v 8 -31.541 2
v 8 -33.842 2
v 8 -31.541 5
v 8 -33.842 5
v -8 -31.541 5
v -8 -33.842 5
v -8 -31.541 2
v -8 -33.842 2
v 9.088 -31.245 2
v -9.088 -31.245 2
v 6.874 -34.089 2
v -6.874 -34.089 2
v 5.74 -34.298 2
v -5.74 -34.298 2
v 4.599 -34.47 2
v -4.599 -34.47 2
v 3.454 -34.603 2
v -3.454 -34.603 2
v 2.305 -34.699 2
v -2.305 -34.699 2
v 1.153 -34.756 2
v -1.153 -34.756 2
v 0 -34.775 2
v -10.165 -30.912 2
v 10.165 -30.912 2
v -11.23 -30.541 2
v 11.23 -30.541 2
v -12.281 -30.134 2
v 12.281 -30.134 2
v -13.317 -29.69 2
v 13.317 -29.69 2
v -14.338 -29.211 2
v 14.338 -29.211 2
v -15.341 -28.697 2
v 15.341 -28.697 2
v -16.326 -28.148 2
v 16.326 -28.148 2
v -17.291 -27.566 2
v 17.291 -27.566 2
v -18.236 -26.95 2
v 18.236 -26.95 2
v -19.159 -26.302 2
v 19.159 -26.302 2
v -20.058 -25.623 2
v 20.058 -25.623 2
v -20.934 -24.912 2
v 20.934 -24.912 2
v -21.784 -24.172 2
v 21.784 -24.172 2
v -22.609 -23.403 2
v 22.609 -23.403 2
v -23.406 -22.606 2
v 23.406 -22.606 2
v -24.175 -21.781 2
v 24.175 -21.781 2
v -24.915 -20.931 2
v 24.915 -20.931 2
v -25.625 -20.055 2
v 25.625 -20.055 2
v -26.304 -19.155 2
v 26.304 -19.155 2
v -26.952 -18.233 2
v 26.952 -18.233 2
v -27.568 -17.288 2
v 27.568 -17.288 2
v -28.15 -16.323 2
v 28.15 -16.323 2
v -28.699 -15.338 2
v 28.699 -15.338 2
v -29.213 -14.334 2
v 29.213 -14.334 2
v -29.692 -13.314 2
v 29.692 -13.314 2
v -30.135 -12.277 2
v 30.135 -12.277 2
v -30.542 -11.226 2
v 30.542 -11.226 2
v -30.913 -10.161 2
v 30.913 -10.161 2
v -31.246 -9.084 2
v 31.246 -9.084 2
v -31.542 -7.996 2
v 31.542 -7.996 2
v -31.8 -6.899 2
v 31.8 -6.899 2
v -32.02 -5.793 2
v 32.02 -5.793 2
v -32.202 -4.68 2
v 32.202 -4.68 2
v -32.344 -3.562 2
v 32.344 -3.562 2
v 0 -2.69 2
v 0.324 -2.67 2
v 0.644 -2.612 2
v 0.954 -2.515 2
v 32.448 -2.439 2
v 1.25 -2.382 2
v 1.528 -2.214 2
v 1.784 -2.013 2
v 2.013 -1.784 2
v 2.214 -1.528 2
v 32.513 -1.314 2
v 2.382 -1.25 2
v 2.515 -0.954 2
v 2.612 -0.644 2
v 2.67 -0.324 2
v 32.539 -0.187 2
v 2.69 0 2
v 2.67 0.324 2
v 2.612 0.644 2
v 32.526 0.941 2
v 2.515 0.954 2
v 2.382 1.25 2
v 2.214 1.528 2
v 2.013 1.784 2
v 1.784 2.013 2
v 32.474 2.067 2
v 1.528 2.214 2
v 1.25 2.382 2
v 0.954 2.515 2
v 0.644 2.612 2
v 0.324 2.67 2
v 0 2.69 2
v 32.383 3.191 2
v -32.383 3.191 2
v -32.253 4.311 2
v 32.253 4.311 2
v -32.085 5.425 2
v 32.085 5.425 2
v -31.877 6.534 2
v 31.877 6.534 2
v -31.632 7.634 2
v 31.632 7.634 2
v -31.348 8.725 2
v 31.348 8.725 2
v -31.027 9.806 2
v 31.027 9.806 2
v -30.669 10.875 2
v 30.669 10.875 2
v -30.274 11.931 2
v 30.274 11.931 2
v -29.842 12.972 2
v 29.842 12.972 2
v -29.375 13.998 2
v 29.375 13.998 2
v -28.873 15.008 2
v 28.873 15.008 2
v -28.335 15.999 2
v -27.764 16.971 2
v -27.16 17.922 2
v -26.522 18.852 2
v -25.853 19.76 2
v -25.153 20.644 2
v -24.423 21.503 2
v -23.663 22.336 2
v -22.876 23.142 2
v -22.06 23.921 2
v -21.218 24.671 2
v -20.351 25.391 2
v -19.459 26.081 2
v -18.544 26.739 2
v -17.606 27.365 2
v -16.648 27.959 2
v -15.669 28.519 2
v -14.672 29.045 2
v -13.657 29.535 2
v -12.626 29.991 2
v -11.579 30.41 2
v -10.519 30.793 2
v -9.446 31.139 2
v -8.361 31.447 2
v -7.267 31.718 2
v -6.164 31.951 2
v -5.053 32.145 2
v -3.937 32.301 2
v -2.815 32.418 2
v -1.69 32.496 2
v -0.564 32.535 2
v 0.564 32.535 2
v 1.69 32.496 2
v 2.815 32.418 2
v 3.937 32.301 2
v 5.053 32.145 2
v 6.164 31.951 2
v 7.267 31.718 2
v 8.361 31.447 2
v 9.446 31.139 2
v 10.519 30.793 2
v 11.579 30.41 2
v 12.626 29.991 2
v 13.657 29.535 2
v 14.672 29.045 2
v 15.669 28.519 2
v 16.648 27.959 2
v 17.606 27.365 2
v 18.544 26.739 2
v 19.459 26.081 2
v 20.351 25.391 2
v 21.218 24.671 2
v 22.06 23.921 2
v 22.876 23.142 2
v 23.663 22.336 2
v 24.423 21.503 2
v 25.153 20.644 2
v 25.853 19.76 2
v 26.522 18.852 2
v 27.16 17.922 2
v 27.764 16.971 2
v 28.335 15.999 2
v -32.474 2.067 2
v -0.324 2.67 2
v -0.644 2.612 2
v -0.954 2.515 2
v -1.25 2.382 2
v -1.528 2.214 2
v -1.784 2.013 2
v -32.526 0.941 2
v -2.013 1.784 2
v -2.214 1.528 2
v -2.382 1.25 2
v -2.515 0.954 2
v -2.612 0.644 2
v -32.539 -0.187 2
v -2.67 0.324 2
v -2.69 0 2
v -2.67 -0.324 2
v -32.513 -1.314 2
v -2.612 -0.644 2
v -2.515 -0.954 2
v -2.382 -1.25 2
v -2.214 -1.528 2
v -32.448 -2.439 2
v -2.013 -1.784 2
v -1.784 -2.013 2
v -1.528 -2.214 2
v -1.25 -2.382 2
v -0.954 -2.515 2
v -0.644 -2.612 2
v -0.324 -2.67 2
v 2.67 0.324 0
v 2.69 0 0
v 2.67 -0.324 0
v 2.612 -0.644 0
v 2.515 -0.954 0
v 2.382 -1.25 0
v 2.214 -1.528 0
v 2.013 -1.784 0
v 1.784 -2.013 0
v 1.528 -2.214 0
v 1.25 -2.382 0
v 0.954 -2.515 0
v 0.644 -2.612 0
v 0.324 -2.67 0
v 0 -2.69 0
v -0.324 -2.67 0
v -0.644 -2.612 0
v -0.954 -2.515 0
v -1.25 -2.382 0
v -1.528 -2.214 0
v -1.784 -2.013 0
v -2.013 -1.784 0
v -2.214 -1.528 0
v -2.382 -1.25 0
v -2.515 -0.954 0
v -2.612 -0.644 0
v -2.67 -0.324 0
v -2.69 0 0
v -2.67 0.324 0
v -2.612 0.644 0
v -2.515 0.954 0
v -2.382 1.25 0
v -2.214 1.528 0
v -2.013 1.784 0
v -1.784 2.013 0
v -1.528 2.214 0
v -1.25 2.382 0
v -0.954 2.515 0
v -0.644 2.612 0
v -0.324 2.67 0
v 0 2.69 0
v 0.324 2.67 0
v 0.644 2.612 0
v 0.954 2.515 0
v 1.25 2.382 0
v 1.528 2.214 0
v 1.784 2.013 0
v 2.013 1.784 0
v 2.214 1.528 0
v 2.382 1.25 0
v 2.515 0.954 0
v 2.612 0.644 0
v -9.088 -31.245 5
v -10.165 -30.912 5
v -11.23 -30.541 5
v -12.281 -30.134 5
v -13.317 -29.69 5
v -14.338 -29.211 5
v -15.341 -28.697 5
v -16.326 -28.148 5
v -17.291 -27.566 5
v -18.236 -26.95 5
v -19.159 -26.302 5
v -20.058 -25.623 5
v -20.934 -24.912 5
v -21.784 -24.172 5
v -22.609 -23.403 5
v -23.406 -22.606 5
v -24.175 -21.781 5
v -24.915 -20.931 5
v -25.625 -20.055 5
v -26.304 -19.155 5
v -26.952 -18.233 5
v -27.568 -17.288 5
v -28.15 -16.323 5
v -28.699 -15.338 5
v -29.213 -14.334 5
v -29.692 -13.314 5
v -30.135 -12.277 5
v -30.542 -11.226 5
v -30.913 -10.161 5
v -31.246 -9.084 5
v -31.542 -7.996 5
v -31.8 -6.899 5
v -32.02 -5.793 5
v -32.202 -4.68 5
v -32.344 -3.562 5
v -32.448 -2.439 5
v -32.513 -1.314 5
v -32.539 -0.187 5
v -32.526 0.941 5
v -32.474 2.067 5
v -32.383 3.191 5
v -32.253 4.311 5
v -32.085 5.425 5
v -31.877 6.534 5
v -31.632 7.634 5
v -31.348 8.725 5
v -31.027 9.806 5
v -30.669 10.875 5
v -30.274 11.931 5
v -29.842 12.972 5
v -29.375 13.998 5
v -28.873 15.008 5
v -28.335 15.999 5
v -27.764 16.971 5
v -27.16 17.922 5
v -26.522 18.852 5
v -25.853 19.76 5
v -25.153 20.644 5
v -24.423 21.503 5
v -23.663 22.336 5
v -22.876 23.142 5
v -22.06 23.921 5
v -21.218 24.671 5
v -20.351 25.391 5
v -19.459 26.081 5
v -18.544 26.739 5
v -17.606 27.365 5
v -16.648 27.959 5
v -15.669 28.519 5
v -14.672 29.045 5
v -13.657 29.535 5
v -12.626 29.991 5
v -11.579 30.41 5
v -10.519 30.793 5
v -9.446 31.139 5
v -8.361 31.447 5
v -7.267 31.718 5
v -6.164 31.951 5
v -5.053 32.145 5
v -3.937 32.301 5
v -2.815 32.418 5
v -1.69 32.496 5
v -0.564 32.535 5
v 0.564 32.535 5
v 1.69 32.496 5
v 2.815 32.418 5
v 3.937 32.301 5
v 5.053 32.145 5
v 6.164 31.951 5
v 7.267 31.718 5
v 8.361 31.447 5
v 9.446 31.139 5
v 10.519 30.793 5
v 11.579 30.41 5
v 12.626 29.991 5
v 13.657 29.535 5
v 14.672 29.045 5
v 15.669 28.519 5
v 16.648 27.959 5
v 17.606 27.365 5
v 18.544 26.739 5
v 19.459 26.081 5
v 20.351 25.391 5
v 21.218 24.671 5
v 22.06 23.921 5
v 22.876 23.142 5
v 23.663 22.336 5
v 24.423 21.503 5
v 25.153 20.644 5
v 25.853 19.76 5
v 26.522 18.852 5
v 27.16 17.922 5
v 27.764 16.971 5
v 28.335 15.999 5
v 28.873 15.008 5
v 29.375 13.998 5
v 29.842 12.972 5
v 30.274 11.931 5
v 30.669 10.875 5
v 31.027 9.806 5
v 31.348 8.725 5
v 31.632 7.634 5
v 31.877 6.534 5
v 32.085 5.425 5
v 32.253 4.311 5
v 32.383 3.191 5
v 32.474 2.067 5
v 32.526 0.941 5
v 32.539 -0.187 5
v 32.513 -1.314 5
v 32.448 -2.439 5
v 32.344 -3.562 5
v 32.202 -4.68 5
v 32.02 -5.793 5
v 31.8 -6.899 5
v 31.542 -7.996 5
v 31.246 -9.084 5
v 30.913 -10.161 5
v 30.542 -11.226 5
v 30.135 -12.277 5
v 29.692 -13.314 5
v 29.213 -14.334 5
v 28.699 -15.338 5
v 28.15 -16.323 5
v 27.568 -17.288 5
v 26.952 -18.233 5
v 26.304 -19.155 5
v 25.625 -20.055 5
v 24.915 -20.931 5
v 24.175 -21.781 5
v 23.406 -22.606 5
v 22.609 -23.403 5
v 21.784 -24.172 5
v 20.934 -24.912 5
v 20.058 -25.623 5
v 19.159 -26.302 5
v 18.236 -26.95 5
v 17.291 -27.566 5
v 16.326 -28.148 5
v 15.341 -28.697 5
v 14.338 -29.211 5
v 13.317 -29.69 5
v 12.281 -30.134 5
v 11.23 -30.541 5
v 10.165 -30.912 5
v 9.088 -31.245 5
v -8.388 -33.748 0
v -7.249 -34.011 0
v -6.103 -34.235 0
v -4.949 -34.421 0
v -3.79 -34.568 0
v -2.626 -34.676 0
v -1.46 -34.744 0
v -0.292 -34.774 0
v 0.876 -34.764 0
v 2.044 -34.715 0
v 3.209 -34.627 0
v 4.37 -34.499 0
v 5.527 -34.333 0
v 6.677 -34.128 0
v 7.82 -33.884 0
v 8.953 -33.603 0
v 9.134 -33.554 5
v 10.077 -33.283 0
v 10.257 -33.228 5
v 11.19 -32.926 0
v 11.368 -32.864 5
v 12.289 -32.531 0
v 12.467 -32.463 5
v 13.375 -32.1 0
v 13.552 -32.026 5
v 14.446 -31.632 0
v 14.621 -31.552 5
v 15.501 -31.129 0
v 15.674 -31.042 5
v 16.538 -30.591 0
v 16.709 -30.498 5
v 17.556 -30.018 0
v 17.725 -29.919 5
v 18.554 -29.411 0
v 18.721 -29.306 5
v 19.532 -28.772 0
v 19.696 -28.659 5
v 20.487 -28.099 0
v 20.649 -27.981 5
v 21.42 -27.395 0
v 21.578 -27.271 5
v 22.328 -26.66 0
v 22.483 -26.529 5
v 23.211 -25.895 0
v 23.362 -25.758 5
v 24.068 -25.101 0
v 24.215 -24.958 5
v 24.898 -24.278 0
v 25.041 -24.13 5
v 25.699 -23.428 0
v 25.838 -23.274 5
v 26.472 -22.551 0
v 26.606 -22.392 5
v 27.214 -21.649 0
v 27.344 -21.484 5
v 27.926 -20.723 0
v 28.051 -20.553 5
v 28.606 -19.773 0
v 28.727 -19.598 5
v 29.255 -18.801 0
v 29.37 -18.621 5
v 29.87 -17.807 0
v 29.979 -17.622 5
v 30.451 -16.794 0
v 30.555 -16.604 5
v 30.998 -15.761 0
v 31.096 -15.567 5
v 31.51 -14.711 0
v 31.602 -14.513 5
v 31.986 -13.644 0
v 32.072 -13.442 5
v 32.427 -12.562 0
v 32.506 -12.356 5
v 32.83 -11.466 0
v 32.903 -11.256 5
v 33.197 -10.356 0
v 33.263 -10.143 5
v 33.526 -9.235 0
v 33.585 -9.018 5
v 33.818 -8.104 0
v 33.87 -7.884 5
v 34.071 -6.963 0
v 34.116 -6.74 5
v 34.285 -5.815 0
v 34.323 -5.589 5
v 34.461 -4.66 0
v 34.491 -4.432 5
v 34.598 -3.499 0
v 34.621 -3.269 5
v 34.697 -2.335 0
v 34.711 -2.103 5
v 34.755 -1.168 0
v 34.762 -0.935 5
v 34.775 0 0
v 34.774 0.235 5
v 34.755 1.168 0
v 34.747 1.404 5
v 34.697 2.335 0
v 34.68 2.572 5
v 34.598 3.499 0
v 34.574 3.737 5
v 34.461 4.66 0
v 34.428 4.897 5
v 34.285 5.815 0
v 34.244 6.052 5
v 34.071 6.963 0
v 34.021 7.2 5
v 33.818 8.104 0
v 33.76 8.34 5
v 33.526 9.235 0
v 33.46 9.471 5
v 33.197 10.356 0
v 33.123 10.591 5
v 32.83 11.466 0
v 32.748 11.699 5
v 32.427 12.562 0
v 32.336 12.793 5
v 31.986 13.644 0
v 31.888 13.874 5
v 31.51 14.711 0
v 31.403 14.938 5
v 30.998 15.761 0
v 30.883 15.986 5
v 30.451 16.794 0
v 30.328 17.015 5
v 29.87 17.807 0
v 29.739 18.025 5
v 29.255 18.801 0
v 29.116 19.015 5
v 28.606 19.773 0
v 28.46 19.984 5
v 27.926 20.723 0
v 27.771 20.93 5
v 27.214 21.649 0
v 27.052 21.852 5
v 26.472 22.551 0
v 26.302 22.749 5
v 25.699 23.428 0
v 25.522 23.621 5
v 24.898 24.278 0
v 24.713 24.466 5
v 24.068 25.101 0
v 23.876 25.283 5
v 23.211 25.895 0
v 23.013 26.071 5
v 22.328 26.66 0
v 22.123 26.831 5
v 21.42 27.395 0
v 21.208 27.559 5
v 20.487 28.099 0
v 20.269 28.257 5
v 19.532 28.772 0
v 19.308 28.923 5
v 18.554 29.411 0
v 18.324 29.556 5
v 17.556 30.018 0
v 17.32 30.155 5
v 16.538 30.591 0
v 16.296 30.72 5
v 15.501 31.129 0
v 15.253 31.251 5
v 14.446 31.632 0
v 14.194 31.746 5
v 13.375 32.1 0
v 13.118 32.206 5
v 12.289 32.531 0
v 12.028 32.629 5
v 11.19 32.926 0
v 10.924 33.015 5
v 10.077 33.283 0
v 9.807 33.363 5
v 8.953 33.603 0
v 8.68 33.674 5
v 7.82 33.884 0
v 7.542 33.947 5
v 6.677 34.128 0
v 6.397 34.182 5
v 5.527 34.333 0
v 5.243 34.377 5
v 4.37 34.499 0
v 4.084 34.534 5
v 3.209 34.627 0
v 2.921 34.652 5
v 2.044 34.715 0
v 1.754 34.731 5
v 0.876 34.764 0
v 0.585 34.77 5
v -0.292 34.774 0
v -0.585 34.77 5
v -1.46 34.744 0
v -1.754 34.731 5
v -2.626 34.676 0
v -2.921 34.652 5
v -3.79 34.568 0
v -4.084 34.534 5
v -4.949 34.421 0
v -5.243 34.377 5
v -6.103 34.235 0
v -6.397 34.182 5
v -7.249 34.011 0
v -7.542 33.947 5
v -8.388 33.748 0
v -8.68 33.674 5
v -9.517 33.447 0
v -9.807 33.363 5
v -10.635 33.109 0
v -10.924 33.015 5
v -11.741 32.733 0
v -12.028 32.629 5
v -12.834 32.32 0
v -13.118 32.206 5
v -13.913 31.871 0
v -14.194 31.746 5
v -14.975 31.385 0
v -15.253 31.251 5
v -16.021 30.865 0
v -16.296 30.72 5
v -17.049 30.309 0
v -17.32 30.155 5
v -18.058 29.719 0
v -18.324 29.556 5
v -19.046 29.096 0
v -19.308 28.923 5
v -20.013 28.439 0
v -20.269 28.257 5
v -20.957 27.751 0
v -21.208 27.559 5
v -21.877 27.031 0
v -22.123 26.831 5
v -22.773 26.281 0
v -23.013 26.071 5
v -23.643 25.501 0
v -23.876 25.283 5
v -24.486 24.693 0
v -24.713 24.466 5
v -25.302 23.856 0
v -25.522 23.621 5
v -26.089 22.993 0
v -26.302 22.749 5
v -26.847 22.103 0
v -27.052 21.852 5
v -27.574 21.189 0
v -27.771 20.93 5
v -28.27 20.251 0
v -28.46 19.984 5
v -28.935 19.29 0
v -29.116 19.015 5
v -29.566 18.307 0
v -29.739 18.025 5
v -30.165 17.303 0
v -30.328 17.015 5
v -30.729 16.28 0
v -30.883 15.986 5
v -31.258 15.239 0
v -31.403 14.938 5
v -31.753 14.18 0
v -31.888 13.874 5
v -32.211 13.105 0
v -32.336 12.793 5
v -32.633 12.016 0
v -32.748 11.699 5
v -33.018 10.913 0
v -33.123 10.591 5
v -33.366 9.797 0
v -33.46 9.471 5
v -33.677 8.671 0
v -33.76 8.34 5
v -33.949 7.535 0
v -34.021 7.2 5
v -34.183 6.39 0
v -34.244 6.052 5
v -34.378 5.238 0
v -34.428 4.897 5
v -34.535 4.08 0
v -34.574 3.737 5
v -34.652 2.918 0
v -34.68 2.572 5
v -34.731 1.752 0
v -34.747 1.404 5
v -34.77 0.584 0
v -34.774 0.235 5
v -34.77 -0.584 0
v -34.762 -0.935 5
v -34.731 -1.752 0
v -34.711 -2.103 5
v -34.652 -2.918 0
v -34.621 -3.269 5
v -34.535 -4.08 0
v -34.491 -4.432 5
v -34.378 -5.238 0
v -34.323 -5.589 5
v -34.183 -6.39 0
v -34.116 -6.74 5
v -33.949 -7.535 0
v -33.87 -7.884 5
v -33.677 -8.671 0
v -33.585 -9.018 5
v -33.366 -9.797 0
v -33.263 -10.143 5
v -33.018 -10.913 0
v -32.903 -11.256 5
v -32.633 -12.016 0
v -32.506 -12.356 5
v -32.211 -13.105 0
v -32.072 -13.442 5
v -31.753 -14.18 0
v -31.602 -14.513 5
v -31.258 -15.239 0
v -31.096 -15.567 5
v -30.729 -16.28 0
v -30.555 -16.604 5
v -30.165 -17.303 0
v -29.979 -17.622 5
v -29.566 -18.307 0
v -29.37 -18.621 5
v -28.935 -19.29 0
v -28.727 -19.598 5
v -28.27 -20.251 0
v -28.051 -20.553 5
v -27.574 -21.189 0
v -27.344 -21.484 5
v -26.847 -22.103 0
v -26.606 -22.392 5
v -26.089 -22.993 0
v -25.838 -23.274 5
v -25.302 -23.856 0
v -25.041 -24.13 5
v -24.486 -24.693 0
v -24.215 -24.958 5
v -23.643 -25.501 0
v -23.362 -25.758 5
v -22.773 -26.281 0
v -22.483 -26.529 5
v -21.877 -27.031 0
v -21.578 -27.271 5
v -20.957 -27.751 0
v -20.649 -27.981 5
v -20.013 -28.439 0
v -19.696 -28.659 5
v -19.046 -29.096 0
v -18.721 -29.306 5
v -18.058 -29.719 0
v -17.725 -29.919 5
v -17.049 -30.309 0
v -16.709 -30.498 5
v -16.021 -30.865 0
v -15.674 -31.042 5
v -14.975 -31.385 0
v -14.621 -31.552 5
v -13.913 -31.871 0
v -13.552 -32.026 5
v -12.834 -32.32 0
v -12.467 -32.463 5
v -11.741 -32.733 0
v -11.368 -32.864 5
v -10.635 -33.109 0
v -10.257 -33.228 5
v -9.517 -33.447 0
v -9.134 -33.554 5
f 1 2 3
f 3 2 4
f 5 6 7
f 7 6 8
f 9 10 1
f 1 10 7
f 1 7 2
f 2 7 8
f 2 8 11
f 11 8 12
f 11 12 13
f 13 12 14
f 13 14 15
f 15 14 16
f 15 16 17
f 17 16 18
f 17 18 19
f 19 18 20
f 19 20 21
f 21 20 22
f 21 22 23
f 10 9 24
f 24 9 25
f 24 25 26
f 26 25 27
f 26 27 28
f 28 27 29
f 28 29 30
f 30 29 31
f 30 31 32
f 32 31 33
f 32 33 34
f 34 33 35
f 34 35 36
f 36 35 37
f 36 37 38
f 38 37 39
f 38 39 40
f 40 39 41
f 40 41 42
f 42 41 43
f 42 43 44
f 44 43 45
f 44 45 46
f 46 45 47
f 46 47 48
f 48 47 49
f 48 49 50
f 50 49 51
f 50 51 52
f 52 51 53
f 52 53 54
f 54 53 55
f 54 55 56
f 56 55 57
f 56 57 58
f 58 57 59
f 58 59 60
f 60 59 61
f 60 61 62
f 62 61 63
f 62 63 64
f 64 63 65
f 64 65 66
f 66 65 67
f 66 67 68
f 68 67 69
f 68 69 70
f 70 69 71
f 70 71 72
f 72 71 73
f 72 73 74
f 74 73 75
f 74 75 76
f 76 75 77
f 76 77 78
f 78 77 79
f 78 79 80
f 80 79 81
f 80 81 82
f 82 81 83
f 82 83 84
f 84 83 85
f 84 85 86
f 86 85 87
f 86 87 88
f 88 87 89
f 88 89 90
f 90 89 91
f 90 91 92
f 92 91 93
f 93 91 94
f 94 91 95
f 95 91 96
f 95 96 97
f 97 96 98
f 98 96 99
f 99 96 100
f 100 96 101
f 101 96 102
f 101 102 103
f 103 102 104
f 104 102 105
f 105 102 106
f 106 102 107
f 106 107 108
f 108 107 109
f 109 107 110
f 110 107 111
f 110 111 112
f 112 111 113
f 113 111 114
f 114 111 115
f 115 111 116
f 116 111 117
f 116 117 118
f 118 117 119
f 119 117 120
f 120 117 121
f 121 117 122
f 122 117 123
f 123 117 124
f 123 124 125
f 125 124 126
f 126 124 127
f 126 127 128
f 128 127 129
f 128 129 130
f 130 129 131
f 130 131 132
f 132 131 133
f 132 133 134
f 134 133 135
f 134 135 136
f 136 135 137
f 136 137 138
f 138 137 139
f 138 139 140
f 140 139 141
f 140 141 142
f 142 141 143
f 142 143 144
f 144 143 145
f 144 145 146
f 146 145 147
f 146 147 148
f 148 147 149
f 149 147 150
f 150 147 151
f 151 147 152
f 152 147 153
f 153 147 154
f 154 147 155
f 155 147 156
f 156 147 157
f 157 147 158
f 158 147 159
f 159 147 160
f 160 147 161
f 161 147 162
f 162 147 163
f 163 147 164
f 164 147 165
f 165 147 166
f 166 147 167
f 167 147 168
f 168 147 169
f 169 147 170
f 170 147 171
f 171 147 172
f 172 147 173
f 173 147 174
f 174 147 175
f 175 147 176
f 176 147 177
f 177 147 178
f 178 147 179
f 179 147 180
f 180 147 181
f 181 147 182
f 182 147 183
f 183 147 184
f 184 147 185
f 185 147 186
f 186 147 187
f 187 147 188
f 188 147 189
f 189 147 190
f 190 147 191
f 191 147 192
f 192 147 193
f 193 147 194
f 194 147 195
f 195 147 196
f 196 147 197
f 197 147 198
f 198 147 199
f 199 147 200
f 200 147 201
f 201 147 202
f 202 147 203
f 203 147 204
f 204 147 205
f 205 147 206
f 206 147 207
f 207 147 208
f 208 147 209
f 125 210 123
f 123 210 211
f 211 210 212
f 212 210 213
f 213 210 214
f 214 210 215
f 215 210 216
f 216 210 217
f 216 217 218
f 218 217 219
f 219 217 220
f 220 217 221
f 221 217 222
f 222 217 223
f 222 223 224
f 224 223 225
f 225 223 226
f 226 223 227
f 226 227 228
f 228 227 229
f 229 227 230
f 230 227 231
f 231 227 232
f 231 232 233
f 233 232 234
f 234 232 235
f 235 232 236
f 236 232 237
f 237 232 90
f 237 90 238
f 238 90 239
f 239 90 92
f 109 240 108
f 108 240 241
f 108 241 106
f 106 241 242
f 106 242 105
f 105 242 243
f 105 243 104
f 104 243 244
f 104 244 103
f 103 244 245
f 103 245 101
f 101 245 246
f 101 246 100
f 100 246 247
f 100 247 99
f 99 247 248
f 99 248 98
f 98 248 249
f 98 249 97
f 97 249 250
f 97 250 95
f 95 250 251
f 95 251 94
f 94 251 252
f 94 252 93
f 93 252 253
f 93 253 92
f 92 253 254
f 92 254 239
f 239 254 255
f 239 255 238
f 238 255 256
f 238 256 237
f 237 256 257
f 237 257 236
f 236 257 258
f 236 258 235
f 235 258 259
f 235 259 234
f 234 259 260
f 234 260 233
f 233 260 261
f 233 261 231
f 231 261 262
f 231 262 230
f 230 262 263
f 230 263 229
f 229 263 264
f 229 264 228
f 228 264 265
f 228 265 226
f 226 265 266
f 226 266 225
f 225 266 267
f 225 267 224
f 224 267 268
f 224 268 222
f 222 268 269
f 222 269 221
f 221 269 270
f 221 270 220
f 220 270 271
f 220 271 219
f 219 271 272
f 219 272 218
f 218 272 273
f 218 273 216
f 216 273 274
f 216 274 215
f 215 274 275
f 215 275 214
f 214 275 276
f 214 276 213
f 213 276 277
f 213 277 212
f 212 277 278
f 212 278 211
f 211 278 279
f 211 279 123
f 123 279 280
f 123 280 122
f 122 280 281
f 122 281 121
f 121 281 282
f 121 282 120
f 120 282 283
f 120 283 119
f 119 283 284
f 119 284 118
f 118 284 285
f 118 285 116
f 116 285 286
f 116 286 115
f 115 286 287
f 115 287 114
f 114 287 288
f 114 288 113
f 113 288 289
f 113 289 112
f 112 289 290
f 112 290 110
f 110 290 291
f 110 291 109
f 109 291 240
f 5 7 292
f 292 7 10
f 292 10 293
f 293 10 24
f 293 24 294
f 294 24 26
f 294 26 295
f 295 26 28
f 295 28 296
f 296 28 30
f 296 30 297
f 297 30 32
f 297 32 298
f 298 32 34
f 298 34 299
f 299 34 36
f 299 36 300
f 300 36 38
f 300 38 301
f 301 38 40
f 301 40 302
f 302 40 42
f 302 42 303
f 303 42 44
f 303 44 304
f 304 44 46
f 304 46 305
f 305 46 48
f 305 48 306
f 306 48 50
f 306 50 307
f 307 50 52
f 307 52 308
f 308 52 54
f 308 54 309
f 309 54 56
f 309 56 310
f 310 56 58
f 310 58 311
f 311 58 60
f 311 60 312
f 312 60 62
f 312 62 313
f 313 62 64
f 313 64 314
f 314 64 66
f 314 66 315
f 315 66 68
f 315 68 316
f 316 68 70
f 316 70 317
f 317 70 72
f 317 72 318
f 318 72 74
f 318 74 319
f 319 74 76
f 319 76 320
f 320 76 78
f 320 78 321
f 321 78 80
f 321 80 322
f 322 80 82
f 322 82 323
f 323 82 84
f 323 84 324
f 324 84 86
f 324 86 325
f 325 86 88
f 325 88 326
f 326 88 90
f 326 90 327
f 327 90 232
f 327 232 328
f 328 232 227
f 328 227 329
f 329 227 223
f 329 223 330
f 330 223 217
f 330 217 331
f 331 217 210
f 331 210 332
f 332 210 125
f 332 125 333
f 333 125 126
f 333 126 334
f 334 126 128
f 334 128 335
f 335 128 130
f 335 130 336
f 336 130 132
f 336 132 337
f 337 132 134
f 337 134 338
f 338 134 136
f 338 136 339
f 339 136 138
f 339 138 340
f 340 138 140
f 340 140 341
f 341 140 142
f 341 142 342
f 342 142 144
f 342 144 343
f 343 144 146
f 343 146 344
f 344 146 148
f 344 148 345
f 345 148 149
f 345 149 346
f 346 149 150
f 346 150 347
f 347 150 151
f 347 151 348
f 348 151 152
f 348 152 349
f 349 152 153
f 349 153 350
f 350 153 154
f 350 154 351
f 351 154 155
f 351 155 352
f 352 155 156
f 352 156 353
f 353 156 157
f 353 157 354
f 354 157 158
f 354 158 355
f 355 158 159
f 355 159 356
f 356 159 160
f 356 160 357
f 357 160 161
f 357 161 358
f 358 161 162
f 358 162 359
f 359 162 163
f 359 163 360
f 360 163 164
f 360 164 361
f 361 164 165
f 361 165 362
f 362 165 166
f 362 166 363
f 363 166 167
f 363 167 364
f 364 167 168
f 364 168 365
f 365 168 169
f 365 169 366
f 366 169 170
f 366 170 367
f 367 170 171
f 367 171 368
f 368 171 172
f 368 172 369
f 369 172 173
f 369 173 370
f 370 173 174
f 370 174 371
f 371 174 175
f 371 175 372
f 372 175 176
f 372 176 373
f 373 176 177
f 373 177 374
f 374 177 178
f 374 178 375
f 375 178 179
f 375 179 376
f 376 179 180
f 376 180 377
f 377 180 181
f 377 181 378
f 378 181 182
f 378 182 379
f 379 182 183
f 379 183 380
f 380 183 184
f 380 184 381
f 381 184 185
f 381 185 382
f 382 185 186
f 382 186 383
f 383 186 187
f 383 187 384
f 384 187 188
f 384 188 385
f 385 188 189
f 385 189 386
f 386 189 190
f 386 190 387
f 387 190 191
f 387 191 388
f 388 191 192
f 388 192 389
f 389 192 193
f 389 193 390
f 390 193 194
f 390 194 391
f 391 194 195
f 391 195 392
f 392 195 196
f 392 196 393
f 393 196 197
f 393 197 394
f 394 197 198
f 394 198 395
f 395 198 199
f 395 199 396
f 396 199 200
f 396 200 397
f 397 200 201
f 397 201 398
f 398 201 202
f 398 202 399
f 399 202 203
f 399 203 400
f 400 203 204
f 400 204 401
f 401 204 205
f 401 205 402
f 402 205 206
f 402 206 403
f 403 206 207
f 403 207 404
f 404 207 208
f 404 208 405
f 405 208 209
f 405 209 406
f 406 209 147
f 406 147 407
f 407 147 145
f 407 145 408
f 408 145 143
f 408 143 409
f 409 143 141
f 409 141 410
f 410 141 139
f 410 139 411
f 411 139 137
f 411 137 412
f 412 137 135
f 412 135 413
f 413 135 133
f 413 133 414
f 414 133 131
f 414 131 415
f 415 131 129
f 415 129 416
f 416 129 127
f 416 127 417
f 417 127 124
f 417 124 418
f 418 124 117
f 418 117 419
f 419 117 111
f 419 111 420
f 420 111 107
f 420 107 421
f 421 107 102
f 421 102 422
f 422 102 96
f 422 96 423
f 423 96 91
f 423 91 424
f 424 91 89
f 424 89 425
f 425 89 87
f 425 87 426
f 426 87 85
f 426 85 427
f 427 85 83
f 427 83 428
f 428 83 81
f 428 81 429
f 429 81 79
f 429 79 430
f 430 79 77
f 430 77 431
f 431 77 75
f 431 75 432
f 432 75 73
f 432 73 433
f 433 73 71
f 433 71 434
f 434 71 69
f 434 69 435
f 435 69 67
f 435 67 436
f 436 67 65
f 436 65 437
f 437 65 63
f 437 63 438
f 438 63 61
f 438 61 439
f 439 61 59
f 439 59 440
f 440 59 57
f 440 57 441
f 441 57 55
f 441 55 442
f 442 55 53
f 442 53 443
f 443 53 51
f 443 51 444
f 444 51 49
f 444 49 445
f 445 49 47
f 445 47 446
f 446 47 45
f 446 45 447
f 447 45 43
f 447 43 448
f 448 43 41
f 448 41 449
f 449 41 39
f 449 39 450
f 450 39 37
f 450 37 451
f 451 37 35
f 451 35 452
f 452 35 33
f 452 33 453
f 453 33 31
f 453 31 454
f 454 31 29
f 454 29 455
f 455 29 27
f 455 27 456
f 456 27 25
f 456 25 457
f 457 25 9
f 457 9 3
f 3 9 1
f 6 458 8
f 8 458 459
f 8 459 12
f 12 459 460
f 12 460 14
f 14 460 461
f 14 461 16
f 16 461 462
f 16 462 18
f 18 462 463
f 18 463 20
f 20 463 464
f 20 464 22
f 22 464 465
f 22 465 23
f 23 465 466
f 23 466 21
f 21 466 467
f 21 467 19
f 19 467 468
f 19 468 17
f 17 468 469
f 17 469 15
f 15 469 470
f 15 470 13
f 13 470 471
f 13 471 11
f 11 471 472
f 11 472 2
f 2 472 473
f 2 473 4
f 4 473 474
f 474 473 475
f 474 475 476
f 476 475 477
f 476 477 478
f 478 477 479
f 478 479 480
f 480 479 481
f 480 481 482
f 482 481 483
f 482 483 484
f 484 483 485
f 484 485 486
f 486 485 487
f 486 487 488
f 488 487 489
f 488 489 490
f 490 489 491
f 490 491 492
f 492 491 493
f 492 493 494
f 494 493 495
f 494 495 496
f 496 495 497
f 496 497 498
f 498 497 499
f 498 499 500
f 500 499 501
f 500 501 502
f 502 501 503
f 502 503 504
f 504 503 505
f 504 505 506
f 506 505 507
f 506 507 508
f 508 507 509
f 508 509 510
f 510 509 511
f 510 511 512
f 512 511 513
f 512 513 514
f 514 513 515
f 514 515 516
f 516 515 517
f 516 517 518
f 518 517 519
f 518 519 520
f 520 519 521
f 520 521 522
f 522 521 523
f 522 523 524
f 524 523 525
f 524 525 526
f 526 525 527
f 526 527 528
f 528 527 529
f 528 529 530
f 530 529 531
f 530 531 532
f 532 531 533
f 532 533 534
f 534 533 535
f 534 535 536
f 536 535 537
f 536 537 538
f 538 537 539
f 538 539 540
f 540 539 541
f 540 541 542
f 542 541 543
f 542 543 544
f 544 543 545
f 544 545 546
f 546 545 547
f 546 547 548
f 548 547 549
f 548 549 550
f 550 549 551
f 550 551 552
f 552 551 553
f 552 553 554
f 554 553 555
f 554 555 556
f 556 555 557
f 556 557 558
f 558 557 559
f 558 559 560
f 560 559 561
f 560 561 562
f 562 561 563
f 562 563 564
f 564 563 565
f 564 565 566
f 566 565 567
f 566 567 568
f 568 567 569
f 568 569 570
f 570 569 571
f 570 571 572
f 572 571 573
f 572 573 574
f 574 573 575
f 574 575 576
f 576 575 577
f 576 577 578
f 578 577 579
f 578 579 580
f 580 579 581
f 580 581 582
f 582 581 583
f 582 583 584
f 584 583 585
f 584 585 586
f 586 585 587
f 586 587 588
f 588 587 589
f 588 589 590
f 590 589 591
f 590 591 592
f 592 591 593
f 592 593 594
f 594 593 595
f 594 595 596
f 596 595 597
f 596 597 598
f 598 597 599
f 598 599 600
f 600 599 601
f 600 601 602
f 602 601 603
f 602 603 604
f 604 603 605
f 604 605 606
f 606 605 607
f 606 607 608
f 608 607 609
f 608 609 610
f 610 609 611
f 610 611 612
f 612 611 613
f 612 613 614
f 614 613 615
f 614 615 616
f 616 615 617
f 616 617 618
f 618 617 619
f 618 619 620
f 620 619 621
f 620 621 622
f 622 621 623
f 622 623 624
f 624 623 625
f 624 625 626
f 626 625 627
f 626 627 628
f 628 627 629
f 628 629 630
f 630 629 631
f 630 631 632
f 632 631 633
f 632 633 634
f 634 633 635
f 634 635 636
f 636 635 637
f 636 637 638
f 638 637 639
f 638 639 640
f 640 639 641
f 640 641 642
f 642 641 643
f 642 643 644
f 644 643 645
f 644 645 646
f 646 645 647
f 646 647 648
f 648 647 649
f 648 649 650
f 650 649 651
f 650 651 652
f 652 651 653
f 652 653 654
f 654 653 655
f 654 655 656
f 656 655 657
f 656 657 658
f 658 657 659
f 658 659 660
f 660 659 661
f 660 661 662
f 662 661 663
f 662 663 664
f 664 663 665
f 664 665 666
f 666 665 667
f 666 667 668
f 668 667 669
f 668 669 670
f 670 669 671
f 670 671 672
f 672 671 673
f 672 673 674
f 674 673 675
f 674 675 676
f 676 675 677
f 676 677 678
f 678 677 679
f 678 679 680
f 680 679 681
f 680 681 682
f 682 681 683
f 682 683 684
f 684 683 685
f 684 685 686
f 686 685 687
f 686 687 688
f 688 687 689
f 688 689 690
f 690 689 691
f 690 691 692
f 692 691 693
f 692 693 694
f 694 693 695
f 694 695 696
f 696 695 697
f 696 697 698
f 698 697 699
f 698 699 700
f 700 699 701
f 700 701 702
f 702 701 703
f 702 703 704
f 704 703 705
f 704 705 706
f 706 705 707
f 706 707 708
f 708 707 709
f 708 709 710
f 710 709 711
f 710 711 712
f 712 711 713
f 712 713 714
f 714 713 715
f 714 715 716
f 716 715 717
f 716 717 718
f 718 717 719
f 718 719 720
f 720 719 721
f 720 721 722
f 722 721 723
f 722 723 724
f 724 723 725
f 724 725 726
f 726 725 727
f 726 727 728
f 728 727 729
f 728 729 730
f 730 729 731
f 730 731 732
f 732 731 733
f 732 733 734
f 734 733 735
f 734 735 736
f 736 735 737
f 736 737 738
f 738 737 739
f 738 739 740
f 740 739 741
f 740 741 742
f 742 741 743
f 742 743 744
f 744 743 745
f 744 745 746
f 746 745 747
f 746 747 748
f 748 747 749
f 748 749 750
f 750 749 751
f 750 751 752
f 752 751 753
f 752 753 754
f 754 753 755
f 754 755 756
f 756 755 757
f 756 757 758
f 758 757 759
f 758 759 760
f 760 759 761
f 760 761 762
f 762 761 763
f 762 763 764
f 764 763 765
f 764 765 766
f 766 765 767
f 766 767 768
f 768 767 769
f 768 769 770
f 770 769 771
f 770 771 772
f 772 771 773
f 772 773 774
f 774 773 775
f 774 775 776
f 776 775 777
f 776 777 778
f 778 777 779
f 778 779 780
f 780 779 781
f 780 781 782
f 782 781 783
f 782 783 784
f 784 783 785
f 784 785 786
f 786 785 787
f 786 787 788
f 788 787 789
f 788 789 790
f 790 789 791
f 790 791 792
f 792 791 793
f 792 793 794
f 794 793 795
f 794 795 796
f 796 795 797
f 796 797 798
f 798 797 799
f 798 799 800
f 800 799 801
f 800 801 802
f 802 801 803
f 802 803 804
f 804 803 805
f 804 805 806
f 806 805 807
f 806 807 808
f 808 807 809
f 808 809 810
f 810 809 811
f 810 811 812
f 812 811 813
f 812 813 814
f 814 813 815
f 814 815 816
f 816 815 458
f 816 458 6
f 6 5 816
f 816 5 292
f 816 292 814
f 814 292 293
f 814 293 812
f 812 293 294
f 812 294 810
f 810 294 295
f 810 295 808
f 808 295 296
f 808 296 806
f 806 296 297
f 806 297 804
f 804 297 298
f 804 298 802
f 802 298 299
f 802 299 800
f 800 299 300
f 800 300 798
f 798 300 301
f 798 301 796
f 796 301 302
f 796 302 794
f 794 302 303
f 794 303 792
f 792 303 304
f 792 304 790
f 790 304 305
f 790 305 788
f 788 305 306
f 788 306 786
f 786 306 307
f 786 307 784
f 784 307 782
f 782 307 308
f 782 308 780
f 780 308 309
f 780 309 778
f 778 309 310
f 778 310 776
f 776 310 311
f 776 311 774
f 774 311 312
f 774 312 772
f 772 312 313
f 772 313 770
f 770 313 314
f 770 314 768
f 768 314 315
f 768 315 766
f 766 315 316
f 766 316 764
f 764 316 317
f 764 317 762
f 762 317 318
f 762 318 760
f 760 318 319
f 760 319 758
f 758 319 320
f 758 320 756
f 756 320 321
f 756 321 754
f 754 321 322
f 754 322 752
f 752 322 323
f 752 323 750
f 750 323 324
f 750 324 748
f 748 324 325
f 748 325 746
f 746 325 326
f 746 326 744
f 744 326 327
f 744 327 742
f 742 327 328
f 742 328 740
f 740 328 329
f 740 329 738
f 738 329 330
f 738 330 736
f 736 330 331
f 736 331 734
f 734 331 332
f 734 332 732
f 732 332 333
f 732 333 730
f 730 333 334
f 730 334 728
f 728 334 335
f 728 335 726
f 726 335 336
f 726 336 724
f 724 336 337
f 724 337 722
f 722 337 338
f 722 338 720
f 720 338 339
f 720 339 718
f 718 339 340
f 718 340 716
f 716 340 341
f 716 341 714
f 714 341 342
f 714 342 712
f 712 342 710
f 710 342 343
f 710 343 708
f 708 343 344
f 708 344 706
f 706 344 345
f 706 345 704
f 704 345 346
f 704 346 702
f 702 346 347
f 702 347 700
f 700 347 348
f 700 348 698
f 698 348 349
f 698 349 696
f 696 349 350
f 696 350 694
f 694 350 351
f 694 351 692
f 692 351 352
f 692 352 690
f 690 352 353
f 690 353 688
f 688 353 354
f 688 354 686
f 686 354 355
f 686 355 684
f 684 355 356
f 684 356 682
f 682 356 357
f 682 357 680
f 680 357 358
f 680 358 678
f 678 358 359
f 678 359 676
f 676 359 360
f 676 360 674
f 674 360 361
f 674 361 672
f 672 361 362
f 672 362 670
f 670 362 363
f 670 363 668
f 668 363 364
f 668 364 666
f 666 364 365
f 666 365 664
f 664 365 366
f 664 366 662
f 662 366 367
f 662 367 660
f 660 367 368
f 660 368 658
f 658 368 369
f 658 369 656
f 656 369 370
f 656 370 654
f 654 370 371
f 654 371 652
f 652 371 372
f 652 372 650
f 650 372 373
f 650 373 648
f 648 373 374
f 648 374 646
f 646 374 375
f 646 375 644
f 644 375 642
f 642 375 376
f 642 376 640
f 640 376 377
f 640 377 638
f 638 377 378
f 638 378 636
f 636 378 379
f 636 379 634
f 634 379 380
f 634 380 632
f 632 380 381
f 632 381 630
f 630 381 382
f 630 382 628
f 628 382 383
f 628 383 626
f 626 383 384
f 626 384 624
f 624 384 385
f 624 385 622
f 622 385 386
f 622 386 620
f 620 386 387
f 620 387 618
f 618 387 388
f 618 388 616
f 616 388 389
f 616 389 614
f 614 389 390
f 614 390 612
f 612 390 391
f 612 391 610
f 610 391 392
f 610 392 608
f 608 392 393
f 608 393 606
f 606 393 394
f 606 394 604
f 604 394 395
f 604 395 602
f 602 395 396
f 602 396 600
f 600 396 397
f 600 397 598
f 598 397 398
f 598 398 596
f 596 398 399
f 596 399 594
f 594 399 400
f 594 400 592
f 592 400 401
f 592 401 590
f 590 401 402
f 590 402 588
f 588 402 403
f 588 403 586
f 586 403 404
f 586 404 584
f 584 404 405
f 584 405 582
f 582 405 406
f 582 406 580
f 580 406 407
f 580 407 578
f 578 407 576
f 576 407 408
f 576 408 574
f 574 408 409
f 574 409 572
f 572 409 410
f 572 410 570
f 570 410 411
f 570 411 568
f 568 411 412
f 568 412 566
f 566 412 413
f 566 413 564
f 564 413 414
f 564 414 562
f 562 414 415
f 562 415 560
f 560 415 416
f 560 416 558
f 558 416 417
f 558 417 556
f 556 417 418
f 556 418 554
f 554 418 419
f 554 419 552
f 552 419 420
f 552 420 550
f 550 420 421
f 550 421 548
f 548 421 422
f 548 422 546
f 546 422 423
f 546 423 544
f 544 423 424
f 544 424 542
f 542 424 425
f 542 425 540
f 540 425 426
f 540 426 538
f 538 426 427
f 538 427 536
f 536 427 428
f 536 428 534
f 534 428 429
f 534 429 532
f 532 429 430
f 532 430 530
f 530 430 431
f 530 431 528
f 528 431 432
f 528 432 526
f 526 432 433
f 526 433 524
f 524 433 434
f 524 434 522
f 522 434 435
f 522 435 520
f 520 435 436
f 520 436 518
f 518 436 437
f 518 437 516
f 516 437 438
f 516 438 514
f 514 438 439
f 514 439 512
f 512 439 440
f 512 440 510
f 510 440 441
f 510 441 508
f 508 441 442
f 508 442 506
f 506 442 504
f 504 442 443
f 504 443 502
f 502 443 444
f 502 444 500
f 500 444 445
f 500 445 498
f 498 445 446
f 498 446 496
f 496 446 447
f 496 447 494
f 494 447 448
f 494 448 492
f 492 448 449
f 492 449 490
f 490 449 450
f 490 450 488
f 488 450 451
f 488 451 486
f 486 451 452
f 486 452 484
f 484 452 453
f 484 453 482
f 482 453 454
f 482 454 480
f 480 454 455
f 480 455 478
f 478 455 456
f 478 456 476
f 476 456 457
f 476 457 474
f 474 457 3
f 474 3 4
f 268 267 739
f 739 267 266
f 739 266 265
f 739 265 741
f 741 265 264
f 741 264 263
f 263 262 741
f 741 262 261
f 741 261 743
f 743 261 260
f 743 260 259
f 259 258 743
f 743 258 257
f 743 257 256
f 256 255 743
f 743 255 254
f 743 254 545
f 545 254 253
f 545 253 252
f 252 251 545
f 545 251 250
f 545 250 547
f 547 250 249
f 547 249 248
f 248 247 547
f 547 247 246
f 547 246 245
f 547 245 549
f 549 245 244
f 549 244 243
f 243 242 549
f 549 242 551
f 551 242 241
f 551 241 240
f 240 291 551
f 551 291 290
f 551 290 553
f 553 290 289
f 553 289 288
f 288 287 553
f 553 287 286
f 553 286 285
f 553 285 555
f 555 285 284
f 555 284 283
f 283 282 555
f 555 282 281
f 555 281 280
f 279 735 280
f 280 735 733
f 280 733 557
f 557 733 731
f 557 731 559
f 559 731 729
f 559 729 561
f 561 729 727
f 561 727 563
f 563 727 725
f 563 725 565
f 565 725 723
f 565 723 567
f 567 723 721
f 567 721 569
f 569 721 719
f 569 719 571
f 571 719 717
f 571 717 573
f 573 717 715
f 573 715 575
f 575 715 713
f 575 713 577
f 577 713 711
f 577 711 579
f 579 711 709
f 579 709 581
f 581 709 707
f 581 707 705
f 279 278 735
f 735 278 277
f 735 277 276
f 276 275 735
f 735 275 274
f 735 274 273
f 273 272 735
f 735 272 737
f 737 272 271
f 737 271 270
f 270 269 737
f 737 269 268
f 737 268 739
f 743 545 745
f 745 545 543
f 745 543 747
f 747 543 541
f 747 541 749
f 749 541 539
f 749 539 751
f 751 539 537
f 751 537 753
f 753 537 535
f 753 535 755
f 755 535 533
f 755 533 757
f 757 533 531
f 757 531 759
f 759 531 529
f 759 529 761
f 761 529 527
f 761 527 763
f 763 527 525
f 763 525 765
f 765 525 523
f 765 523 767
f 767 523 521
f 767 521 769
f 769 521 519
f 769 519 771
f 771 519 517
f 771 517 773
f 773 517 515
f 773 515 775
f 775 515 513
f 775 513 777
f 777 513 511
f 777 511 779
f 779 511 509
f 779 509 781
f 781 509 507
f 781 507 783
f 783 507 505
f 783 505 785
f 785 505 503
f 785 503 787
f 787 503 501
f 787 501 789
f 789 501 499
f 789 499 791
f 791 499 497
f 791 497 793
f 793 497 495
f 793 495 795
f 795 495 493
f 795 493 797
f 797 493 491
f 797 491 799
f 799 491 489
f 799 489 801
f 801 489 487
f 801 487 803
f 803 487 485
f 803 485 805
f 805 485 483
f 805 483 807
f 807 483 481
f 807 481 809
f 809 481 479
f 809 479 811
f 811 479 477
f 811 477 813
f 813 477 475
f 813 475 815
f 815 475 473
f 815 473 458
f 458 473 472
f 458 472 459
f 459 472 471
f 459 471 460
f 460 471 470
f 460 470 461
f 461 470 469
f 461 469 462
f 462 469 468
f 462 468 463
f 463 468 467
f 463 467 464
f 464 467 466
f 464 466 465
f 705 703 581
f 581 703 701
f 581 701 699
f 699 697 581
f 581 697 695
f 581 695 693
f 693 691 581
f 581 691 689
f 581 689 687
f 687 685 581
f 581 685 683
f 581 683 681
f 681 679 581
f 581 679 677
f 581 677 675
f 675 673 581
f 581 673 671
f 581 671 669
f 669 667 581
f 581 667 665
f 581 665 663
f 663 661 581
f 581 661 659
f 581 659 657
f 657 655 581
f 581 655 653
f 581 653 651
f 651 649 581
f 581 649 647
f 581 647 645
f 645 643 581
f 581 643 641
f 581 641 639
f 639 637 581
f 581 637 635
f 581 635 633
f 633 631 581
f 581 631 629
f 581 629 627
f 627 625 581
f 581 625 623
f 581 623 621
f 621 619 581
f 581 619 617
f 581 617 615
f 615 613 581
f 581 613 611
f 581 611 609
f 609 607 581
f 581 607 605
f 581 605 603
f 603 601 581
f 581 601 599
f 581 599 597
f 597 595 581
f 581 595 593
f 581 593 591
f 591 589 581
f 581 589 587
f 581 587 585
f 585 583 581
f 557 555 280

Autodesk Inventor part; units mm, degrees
ref_plane "YZ Plane" through (0, 0, 0) normal (1, 0, 0) x (0, 1, 0)
ref_plane "XZ Plane" through (0, 0, 0) normal (0, 1, 0) x (-1, 0, 0)
ref_plane "XY Plane" through (0, 0, 0) normal (0, 0, 1) x (1, 0, 0)
sketch "Skizze1" plane through (0, 0, 0) normal (0, 0, 1) x (1, 0, 0)
  circle A0 centre (0, 0) radius 34.775
  dimension "d0" = 69.55
extrude "Extrusion1" add sketch "Skizze1" along normal blind 5
sketch "Skizze2" plane through (0, 0, 5) normal (0, 0, 1) x (1, 0, 0)
  circle A0 centre (0, 0) radius 32.54
  dimension "d3" = 65.08
extrude "Extrusion2" cut sketch "Skizze2" against normal blind 3
sketch "Skizze3" plane through (0, 0, 0) normal (0, 0, -1) x (-1, 0, 0)
  circle A0 centre (0, 0) radius 2.69
  dimension "d6" = 5.38
extrude "Extrusion3" cut sketch "Skizze3" against normal through all
sketch "Skizze4" plane through (0, 0, 5) normal (0, 0, 1) x (1, 0, 0)
  line L0 (-8, -42.775) -> (8, -42.775)
  line L1 (8, -42.775) -> (8, -26.775)
  line L2 (8, -26.775) -> (-8, -26.775)
  line L3 (-8, -26.775) -> (-8, -42.775)
  circle A0 centre (0, 0) radius 34.775 projected
  line L4 (-8, -42.775) -> (8, -26.775) construction
  line L5 (8, -42.775) -> (-8, -26.775) construction
  point P0 (0, -34.775)
  dimension "d9" = 16
  dimension "d10" = 16
extrude "Extrusion4" cut sketch "Skizze4" against normal up to surface (3 mm away) contours L3 A0 L1 L0 | L3 L2 L1 A0 picked at (0.896, -29.407)
properties part number "2024_08_28_Holder_disk_NMR"
